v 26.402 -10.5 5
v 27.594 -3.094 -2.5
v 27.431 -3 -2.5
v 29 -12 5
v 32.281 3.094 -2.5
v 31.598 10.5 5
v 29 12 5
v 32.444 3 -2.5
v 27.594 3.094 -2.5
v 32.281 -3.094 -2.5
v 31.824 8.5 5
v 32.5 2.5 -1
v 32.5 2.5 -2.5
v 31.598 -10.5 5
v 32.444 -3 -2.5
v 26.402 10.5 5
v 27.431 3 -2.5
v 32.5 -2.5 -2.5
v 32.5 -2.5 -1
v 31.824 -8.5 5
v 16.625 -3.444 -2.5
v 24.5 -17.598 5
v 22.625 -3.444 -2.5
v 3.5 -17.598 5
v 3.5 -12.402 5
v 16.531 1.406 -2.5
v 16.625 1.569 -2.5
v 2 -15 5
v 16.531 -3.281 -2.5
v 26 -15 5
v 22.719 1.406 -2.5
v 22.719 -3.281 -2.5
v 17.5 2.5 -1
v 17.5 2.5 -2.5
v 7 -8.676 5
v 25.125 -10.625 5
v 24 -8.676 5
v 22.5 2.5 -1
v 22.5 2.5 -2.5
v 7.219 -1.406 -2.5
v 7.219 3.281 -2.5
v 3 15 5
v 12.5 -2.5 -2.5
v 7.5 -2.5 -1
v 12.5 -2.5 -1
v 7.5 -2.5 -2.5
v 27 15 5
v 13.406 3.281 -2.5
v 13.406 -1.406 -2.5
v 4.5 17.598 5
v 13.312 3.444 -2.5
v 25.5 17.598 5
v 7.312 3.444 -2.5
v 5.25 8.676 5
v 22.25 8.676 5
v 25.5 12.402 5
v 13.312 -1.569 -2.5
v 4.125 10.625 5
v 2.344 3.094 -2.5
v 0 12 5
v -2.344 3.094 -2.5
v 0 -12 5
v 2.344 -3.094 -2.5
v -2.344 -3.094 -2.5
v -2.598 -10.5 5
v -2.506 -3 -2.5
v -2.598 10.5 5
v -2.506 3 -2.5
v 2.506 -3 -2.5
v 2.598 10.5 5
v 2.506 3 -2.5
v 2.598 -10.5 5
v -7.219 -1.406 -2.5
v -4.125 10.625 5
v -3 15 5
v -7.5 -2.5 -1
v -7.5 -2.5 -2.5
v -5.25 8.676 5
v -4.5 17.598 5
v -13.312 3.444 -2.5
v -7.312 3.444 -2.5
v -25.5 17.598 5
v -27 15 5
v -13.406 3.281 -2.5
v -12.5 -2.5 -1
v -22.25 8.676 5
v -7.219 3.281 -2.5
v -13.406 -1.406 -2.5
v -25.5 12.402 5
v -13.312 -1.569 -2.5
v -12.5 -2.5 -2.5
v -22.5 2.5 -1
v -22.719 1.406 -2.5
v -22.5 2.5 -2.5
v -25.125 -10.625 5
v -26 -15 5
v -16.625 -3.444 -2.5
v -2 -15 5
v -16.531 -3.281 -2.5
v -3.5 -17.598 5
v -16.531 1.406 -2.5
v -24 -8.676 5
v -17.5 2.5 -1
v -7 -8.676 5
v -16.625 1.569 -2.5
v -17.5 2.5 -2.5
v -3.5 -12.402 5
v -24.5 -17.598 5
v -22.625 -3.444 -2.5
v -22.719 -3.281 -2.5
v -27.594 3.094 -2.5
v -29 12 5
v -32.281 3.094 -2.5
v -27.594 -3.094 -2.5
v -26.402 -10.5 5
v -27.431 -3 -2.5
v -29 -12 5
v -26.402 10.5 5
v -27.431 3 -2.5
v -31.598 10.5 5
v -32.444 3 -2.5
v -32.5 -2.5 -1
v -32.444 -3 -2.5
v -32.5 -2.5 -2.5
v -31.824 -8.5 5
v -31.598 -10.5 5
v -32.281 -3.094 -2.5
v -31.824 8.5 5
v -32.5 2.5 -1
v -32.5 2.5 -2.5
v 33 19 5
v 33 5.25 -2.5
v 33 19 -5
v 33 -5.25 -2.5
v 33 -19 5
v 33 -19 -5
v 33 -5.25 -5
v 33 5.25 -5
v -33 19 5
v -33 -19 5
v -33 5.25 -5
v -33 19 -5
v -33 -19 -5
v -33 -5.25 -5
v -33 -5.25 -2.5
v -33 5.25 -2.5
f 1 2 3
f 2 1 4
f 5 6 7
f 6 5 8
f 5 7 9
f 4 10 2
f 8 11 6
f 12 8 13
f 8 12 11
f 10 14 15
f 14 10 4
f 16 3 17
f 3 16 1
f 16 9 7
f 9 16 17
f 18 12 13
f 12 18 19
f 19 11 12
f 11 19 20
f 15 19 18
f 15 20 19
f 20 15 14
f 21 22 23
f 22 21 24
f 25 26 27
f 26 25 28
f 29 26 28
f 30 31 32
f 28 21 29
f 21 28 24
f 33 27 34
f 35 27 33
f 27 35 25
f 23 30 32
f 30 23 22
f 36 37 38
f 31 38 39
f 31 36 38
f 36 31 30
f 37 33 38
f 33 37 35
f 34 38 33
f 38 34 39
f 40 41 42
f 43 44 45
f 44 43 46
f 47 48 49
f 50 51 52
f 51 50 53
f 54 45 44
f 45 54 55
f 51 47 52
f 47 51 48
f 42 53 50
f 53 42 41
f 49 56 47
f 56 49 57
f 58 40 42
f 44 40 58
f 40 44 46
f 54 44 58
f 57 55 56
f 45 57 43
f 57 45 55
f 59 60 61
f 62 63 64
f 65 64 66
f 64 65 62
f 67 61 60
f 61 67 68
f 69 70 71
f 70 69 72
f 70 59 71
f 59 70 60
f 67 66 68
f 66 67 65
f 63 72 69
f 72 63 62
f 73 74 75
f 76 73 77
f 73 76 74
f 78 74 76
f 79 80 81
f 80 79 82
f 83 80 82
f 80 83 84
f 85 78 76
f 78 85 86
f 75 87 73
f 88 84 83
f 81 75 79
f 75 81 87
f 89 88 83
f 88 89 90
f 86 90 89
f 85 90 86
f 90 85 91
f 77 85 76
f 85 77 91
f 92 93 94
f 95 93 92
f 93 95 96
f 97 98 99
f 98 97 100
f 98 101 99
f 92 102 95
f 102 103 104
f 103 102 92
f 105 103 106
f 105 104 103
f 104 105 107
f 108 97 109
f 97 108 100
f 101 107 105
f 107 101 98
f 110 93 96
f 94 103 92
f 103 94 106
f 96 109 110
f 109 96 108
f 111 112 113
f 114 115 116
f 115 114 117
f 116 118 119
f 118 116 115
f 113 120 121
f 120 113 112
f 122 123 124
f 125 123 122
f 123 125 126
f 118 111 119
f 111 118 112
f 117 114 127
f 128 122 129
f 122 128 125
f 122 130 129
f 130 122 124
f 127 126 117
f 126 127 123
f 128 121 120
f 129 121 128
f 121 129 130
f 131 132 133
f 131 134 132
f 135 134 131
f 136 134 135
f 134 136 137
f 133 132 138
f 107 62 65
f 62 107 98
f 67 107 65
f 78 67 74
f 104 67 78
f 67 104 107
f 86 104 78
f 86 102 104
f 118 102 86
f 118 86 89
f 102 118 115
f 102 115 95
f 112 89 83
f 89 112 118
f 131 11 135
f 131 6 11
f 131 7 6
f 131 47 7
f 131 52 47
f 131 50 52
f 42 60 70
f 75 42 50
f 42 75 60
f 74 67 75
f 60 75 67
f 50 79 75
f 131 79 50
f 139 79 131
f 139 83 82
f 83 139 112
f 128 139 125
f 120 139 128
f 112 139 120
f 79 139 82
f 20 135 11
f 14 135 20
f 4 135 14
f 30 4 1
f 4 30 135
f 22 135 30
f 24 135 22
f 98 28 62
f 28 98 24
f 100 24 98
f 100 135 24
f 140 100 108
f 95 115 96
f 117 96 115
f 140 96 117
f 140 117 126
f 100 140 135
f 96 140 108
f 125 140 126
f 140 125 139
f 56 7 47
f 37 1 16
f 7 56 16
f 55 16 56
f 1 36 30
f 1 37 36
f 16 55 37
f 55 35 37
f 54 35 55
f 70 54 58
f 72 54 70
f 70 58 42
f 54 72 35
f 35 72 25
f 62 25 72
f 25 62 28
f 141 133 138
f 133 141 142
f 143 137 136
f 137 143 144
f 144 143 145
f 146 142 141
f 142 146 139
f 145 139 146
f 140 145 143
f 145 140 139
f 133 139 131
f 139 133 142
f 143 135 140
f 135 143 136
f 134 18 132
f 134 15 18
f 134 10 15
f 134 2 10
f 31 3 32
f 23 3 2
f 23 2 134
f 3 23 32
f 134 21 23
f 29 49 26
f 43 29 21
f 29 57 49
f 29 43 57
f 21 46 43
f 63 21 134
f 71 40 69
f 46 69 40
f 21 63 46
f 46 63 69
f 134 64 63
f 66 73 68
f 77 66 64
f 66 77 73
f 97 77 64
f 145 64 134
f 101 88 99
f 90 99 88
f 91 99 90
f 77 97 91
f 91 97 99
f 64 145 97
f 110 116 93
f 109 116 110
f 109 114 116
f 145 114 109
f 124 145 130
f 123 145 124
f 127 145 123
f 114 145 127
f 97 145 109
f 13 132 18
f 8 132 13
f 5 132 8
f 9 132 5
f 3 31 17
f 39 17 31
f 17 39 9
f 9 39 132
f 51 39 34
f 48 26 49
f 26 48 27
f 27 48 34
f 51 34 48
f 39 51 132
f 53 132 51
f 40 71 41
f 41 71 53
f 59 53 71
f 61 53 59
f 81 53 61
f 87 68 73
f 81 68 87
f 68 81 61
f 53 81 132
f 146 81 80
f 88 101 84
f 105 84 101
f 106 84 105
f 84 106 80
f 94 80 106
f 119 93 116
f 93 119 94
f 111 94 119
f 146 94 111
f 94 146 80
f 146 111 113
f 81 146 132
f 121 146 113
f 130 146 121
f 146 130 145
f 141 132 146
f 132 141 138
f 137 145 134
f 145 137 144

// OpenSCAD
// WS2812 LED Strip Parameters - verified measurements
led_spacing = 10;      // 10mm between LED centers
strip_width = 10;      // 10mm wide LED strip
strip_height = 2;      // Keep same
tolerance = 0.5;       // Keep same
led_size = 5;         // 5mm square LED cutouts

// Updated Base Parameters
base_width = 66;      // Optimized smaller base
base_length = 38;     // Adjusted proportionally
base_height = 10;     // Increased by 25% from 25mm

// Updated 7-Segment Display Parameters
segment_h_length = 24;    // Increased horizontal length for wider number
segment_width = 6;        // Keep wider segments

// Add diffuser parameters
diffuser_height = 1;

// Define LED positions globally
led1 = [0, -3.0 * led_spacing];  // LED1
led2 = [0,-2.0 * led_spacing];  // LED2
led3 = [0,-1.0 * led_spacing];  // LED3
led4 = [0,0.0 * led_spacing];   // LED4 - Center LED
led5 = [0,1.0 * led_spacing];   // LED5
led6 = [0,2.0 * led_spacing];   // LED6
led7 = [0,3.0 * led_spacing];   // LED7

// Define segment positions globally - Wide and squished
seg_f = [-15, 14];     // F (top left vertical) - moved outward
seg_e = [-15, -14];    // E (bottom left vertical) - moved outward
seg_a = [0, 29];      // A (top horizontal) - same height
seg_g = [0, 0];       // G (middle horizontal) - unchanged
seg_b = [15, 15];      // B (top right vertical) - moved closer
seg_c = [15, -15];     // C (bottom right vertical) - moved closer
seg_d = [0, -29];     // D (bottom horizontal) - moved closer

// LED Strip Channel with wire channels - centered
module led_channel() {
    // Main channel exactly 10mm wide plus tolerance
    translate([-base_width/2 , -strip_width/2 - tolerance/2, -base_height/2])
        cube([base_width, strip_width + tolerance, strip_height + tolerance]);
}

// Single light pipe cavity with elongating shape
module light_cavity(led_pos, segment_pos, is_horizontal=false) {
    // Calculate heights for better progression
    z_bottom = -base_height/2 + strip_height;
    z_top = base_height/2;
    total_height = z_top - z_bottom;
    
    hull() {
        // Bottom (at LED) - small square
        translate([led_pos[0] - led_size/2, led_pos[1] - led_size/2, z_bottom])
            cube([led_size, led_size, 2]);
     
            
        // Top (at segment) - full segment shape
        translate([segment_pos[0], segment_pos[1], z_top ]) {
            rotate([0, 0, is_horizontal ? 0 : 90])
                linear_extrude(height=2)
                    segment(segment_h_length, segment_width);
        }
    }
    
}

// All light cavities with corrected segment positions and mirroring
module all_cavities(visualization=false) {
    
    rotate([0, 0, 90]) {
        // Light paths
        light_cavity(led1, seg_d, true);   // LED1 → F (vertical)
        light_cavity(led2, seg_e, false);   // LED2 → E (vertical)
        light_cavity(led3, seg_c, false);    // LED3 → A (horizontal)
        light_cavity(led4, seg_g, true);    // LED4 → G (horizontal)
        light_cavity(led5, seg_b, false);   // LED5 → B (vertical)
        light_cavity(led6, seg_f, false);   // LED6 → C (vertical)
        light_cavity(led7, seg_a, true);    // LED6 → D (horizontal)
    }
}

// Base with LED channel, cavities, 
module base() {
    difference() {
        // Main block
        cube([base_width, base_length, base_height], center=true);             
        // LED channel
        led_channel();
        // Light pipe cavities
        all_cavities(false);  // Use same paths for actual cavities
    }
}

module segment(length, width) {
    // Elongated hexagonal shape
    hull() {
        translate([-length/2 + width/2, 0, 0]) 
            circle(d=width, $fn=6);
        translate([length/2 - width/2, 0, 0])  
            circle(d=width, $fn=6);
    }
}

// Diffuser layer module
module diffuser_layer() {
    color("White", alpha=0.2)  // Semi-transparent to visualize
    translate([0, 0, base_height/2])  // Changed to sit directly on base
        cube([base_width, base_length, diffuser_height], center=true);
}

// Render just the paths in red with slight transparency
// all_cavities(true);  // Show paths
union() {
   base();
   //diffuser_layer();
}
   
